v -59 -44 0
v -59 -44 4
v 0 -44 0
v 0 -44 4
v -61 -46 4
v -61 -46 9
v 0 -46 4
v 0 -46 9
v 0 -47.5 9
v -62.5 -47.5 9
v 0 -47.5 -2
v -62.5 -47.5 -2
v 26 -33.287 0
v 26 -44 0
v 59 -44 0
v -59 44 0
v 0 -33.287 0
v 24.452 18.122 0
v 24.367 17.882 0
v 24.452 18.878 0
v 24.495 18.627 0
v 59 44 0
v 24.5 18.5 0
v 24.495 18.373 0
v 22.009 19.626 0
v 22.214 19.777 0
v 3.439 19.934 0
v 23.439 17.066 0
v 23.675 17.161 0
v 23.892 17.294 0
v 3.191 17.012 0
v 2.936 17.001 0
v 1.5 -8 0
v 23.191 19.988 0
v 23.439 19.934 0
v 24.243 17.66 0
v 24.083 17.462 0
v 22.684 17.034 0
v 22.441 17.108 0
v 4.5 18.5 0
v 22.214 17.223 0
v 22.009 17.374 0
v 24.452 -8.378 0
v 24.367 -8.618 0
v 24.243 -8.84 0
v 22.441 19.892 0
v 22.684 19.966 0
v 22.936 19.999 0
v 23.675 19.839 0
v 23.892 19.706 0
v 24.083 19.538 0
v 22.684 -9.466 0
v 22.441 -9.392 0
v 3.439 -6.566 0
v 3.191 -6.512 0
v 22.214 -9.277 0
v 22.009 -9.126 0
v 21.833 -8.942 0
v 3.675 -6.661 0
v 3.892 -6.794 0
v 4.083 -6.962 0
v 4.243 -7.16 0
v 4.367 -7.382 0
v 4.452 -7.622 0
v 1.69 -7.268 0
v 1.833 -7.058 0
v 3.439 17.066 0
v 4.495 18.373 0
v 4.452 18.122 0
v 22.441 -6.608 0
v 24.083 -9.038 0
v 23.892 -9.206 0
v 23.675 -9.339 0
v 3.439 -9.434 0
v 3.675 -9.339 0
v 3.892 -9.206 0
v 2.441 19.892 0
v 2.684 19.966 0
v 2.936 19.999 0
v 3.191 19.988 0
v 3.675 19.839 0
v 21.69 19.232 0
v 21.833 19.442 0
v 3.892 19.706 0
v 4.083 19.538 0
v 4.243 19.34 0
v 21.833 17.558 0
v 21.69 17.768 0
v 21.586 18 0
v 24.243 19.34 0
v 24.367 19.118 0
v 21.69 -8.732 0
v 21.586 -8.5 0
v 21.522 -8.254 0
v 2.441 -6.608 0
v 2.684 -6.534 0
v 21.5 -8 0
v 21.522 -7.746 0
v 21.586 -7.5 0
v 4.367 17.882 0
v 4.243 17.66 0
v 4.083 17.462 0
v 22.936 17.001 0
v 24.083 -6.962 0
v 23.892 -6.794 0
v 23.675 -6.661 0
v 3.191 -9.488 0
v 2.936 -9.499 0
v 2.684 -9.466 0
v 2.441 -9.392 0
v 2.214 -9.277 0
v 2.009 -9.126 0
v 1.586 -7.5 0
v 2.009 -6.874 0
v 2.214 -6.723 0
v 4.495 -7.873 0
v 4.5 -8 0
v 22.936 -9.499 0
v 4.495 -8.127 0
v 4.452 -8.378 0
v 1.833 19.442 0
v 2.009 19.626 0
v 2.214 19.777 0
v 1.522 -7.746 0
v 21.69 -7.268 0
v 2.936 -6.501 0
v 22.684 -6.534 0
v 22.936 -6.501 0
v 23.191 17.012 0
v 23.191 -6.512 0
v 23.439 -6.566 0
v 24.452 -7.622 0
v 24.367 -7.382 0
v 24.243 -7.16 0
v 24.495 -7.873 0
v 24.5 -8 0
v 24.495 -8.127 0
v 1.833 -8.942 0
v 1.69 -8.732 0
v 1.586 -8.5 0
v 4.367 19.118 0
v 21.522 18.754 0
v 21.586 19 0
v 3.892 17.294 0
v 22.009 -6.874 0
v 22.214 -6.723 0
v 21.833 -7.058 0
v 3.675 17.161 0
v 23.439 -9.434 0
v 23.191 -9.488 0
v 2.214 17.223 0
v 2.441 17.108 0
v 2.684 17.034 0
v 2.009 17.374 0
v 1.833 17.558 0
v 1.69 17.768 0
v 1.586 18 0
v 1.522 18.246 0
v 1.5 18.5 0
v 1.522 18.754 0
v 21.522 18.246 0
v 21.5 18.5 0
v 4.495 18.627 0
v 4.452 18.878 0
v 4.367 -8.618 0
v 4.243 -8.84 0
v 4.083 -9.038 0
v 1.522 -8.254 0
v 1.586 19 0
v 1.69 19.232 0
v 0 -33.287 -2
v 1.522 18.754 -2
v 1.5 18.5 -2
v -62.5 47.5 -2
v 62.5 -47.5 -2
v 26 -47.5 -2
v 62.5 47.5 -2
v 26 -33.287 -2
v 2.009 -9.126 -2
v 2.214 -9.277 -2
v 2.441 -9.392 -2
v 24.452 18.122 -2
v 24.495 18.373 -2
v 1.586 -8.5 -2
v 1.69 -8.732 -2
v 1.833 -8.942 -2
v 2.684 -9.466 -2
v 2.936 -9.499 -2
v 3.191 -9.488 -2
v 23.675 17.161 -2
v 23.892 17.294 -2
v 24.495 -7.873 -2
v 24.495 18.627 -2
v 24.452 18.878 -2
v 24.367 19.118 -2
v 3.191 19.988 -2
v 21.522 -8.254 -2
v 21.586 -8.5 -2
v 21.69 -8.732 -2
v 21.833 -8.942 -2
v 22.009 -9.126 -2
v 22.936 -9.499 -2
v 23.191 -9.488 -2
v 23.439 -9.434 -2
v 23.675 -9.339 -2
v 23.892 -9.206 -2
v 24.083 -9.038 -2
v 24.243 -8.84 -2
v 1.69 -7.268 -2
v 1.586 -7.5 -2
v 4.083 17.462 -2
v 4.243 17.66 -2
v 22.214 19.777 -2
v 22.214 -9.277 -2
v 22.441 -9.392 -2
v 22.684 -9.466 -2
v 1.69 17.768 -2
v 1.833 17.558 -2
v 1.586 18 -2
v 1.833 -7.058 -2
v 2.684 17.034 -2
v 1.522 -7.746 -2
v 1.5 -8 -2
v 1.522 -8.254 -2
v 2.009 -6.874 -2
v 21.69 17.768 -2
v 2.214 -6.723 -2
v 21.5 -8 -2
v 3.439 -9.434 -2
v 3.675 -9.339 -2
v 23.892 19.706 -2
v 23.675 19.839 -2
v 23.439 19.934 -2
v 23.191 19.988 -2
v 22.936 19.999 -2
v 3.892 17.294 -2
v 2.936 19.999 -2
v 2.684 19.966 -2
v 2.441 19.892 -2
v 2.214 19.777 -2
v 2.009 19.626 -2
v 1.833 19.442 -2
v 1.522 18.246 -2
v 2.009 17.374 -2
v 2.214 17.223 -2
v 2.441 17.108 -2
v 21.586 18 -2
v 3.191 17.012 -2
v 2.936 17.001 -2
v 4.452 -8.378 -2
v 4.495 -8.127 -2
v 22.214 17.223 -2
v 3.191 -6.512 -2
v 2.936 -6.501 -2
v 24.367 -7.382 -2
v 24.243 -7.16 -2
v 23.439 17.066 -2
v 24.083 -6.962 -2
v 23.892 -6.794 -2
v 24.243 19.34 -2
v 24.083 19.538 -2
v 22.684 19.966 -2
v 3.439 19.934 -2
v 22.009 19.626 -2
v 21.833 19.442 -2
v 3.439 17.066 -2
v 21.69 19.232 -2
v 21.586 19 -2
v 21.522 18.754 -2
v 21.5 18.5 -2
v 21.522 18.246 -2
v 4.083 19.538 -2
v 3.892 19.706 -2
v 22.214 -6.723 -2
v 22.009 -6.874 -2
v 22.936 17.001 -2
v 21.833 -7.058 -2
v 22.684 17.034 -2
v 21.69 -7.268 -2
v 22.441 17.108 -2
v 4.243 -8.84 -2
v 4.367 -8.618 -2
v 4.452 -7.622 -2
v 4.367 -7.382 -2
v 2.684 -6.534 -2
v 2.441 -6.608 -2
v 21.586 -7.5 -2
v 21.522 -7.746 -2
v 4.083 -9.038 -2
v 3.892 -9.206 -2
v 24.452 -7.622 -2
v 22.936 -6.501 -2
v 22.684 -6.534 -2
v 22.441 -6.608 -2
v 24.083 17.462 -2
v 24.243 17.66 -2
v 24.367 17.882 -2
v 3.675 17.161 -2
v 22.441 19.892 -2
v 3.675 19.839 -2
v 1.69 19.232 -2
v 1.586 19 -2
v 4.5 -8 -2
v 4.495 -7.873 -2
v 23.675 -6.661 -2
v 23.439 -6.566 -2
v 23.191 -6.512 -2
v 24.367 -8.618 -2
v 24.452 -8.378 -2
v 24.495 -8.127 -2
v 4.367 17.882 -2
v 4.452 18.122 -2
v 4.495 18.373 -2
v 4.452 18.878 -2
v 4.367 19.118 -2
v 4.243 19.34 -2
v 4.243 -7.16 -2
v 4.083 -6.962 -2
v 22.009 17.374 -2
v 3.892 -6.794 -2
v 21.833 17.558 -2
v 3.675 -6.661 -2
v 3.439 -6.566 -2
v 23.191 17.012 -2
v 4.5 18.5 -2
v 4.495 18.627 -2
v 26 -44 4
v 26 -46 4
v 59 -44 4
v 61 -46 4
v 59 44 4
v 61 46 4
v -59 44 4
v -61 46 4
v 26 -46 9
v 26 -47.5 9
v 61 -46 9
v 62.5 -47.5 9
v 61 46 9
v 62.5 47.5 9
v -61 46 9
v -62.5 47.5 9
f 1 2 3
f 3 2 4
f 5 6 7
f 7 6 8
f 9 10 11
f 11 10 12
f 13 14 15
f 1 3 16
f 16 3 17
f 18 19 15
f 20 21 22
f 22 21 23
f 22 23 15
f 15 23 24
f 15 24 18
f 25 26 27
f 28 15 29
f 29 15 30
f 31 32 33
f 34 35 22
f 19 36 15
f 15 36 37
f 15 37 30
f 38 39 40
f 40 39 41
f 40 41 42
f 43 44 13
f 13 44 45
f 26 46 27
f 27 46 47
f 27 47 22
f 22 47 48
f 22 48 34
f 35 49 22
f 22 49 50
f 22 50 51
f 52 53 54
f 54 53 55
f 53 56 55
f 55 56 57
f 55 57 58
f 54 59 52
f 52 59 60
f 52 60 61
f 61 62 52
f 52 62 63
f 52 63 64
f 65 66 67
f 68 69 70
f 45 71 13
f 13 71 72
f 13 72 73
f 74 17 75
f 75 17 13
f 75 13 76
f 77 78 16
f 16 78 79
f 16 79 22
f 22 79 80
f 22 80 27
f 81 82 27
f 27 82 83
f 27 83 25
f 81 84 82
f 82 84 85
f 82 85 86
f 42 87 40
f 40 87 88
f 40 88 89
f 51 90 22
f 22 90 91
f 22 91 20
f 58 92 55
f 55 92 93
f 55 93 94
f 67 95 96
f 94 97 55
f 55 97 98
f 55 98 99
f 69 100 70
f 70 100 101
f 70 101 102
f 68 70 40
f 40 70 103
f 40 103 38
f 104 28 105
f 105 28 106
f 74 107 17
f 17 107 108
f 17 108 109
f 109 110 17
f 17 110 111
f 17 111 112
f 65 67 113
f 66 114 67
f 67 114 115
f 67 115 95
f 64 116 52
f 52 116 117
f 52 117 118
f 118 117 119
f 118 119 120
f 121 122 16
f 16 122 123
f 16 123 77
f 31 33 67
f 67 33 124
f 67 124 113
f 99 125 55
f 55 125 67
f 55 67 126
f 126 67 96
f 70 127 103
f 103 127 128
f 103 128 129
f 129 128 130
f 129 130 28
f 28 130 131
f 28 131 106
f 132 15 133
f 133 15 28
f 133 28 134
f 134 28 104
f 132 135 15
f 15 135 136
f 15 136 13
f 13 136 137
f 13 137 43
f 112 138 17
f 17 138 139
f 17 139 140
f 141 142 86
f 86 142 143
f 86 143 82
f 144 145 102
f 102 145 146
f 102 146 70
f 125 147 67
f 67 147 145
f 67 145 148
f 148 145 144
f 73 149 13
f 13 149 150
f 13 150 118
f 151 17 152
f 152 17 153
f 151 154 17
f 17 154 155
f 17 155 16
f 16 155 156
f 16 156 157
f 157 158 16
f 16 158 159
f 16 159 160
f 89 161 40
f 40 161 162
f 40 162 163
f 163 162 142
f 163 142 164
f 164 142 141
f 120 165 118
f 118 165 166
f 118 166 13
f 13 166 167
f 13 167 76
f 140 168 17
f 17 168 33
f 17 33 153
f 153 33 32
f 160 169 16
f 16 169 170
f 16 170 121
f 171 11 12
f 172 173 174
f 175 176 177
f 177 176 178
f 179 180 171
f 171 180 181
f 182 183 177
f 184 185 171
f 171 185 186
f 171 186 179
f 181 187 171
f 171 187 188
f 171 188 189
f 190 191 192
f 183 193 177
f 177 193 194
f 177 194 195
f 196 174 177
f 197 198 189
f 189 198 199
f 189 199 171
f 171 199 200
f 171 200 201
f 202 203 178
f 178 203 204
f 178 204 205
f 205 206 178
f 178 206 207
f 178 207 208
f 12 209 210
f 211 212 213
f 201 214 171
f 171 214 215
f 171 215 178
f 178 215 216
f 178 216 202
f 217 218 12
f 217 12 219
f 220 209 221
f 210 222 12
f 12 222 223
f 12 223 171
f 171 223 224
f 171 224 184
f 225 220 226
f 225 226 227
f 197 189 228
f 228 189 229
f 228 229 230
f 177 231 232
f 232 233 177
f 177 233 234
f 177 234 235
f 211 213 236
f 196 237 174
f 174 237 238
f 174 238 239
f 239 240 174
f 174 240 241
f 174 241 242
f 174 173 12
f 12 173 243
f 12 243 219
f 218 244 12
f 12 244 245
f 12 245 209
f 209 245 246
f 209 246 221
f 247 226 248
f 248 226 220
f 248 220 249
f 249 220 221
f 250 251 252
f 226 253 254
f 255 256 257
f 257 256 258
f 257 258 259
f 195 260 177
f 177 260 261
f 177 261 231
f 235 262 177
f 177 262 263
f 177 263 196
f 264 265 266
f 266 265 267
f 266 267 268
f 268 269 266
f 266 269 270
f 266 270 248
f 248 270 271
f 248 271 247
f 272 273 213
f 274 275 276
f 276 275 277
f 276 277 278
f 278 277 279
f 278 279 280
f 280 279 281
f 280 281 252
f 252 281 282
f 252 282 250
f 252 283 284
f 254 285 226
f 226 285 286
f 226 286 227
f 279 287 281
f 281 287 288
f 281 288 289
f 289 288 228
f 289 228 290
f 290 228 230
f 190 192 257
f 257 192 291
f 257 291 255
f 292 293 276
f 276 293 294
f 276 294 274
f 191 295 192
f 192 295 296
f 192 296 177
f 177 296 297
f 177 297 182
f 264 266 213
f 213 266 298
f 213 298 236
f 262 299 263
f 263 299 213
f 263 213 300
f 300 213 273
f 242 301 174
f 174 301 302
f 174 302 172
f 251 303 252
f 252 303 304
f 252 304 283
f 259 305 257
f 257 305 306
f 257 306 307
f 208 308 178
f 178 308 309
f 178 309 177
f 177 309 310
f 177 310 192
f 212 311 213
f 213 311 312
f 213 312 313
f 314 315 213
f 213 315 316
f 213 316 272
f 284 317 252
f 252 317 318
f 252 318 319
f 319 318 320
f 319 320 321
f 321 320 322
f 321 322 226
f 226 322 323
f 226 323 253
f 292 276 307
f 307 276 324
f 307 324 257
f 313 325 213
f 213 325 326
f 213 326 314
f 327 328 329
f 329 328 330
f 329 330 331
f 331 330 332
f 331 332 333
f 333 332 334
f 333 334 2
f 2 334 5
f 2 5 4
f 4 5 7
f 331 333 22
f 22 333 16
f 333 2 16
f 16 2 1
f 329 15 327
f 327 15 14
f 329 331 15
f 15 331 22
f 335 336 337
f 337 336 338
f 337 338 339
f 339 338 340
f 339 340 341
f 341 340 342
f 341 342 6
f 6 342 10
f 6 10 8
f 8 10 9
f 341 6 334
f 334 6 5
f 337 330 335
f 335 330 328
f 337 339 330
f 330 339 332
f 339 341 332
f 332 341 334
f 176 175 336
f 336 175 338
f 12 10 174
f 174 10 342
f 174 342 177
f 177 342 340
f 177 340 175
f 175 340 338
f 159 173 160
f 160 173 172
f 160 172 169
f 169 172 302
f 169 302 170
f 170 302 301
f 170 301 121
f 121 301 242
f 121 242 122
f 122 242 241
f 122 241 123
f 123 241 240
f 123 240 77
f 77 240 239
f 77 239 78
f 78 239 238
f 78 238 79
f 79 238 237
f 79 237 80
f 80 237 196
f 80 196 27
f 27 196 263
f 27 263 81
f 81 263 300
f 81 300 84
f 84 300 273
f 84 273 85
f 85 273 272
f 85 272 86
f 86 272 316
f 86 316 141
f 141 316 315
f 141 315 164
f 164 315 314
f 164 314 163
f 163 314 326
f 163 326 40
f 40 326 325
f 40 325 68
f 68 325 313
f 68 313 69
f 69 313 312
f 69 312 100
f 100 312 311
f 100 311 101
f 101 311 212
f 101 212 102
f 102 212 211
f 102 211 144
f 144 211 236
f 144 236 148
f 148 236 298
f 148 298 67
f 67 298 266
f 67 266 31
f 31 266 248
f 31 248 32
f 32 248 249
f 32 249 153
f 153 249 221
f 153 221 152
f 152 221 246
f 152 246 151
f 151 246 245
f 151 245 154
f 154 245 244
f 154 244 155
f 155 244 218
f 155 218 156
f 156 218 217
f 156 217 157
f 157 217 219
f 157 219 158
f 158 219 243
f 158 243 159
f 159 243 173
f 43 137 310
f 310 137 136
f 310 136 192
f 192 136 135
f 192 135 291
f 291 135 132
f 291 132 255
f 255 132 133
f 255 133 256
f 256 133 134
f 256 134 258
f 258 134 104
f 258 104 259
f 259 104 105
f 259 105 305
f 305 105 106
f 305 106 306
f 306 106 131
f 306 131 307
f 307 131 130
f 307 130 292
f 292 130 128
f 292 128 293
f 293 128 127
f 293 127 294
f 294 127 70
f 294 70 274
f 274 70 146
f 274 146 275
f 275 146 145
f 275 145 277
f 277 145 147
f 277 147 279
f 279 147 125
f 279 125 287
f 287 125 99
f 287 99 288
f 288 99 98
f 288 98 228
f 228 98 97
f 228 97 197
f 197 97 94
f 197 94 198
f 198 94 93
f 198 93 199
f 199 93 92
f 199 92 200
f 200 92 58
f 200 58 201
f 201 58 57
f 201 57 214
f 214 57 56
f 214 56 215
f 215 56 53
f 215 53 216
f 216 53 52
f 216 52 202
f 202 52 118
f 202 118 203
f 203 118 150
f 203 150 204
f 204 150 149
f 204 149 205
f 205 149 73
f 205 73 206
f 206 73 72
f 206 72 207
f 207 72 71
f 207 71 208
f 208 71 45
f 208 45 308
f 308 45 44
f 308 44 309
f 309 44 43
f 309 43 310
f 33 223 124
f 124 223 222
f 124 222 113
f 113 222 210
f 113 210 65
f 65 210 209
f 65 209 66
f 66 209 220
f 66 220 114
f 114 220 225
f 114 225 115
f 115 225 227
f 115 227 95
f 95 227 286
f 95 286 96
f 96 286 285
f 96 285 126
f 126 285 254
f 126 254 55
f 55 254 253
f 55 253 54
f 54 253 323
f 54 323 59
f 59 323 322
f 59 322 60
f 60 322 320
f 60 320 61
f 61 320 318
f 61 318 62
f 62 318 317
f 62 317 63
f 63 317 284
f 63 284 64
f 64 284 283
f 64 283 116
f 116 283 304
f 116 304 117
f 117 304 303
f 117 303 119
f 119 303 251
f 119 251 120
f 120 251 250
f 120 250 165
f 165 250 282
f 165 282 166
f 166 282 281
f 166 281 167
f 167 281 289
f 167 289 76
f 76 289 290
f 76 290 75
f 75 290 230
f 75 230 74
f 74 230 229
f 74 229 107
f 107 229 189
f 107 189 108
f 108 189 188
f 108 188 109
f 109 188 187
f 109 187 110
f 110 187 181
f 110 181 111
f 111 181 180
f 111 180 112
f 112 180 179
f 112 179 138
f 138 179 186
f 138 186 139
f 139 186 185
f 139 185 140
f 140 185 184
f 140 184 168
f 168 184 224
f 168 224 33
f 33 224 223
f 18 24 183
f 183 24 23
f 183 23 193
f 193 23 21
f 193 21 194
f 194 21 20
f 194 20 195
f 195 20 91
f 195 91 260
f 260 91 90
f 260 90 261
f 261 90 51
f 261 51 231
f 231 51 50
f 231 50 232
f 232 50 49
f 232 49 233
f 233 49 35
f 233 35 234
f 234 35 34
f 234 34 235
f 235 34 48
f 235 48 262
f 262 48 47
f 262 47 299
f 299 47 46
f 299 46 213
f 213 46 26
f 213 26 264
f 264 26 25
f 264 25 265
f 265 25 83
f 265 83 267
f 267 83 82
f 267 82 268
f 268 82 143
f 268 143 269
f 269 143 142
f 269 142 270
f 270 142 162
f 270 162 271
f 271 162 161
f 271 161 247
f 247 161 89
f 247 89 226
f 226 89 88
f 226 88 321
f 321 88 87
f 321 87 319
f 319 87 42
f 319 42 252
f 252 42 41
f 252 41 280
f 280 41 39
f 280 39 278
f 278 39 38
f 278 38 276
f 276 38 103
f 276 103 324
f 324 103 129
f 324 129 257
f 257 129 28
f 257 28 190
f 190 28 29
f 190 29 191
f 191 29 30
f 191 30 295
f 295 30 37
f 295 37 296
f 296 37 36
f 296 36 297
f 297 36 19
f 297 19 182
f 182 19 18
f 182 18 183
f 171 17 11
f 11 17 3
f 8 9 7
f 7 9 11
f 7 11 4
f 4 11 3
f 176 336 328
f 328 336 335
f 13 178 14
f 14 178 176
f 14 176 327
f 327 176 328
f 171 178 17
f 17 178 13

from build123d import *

# Parameters (mm, degrees)
SKETCH1_W           = 125
SKETCH1_H           = 95
SKETCH1_W_2         = 118
SKETCH1_H_2         = 88
BOSS_EXTRUDE1_DEPTH = 4
SKETCH2_W           = 125
SKETCH2_H           = 95
BOSS_EXTRUDE2_DEPTH = 2
SKETCH3_W           = 125
SKETCH3_H           = 95
SKETCH3_W_2         = 122
SKETCH3_H_2         = 92
BOSS_EXTRUDE3_DEPTH = 5
SKETCH5_R           = 1.5
CUT_EXTRUDE1_DEPTH  = 26.5
SKETCH7_W           = 26
SKETCH7_H           = 14.212575567
CUT_EXTRUDE2_DEPTH  = 26.5


with BuildPart() as part:
    # Sketch1 → Boss-Extrude1 (new body)
    with BuildSketch(Plane.XY):
        Rectangle(SKETCH1_W, SKETCH1_H)
        Rectangle(SKETCH1_W_2, SKETCH1_H_2, mode=Mode.SUBTRACT)
    extrude(amount=BOSS_EXTRUDE1_DEPTH)

    # Sketch2 → Boss-Extrude2 (add)
    with BuildSketch(Plane(origin=(0, 0, 0), x_dir=(-1, 0, 0), z_dir=(0, 0, -1))):
        Rectangle(SKETCH2_W, SKETCH2_H)
    extrude(amount=BOSS_EXTRUDE2_DEPTH)

    # Sketch3 → Boss-Extrude3 (add)
    with BuildSketch(Plane.XY.offset(4)):
        Rectangle(SKETCH3_W, SKETCH3_H)
        Rectangle(SKETCH3_W_2, SKETCH3_H_2, mode=Mode.SUBTRACT)
    extrude(amount=BOSS_EXTRUDE3_DEPTH)

    # Sketch5 → Cut-Extrude1 (cut)
    with BuildSketch(Plane(origin=(0, 0, -2), x_dir=(-1, 0, 0), z_dir=(0, 0, -1))):
        with Locations((-23, 18.5)):
            Circle(SKETCH5_R)
        with Locations((-23, -8)):
            Circle(SKETCH5_R)
        with Locations((-3, -8)):
            Circle(SKETCH5_R)
        with Locations((-3, 18.5)):
            Circle(SKETCH5_R)
    extrude(amount=-CUT_EXTRUDE1_DEPTH, mode=Mode.SUBTRACT)

    # Sketch7 → Cut-Extrude2 (cut)
    with BuildSketch(Plane(origin=(0, 0, -2), x_dir=(-1, 0, 0), z_dir=(0, 0, -1))):
        with Locations((-13, -40.393712217)):
            Rectangle(SKETCH7_W, SKETCH7_H)
    extrude(amount=-CUT_EXTRUDE2_DEPTH, mode=Mode.SUBTRACT)


solid = part.part
